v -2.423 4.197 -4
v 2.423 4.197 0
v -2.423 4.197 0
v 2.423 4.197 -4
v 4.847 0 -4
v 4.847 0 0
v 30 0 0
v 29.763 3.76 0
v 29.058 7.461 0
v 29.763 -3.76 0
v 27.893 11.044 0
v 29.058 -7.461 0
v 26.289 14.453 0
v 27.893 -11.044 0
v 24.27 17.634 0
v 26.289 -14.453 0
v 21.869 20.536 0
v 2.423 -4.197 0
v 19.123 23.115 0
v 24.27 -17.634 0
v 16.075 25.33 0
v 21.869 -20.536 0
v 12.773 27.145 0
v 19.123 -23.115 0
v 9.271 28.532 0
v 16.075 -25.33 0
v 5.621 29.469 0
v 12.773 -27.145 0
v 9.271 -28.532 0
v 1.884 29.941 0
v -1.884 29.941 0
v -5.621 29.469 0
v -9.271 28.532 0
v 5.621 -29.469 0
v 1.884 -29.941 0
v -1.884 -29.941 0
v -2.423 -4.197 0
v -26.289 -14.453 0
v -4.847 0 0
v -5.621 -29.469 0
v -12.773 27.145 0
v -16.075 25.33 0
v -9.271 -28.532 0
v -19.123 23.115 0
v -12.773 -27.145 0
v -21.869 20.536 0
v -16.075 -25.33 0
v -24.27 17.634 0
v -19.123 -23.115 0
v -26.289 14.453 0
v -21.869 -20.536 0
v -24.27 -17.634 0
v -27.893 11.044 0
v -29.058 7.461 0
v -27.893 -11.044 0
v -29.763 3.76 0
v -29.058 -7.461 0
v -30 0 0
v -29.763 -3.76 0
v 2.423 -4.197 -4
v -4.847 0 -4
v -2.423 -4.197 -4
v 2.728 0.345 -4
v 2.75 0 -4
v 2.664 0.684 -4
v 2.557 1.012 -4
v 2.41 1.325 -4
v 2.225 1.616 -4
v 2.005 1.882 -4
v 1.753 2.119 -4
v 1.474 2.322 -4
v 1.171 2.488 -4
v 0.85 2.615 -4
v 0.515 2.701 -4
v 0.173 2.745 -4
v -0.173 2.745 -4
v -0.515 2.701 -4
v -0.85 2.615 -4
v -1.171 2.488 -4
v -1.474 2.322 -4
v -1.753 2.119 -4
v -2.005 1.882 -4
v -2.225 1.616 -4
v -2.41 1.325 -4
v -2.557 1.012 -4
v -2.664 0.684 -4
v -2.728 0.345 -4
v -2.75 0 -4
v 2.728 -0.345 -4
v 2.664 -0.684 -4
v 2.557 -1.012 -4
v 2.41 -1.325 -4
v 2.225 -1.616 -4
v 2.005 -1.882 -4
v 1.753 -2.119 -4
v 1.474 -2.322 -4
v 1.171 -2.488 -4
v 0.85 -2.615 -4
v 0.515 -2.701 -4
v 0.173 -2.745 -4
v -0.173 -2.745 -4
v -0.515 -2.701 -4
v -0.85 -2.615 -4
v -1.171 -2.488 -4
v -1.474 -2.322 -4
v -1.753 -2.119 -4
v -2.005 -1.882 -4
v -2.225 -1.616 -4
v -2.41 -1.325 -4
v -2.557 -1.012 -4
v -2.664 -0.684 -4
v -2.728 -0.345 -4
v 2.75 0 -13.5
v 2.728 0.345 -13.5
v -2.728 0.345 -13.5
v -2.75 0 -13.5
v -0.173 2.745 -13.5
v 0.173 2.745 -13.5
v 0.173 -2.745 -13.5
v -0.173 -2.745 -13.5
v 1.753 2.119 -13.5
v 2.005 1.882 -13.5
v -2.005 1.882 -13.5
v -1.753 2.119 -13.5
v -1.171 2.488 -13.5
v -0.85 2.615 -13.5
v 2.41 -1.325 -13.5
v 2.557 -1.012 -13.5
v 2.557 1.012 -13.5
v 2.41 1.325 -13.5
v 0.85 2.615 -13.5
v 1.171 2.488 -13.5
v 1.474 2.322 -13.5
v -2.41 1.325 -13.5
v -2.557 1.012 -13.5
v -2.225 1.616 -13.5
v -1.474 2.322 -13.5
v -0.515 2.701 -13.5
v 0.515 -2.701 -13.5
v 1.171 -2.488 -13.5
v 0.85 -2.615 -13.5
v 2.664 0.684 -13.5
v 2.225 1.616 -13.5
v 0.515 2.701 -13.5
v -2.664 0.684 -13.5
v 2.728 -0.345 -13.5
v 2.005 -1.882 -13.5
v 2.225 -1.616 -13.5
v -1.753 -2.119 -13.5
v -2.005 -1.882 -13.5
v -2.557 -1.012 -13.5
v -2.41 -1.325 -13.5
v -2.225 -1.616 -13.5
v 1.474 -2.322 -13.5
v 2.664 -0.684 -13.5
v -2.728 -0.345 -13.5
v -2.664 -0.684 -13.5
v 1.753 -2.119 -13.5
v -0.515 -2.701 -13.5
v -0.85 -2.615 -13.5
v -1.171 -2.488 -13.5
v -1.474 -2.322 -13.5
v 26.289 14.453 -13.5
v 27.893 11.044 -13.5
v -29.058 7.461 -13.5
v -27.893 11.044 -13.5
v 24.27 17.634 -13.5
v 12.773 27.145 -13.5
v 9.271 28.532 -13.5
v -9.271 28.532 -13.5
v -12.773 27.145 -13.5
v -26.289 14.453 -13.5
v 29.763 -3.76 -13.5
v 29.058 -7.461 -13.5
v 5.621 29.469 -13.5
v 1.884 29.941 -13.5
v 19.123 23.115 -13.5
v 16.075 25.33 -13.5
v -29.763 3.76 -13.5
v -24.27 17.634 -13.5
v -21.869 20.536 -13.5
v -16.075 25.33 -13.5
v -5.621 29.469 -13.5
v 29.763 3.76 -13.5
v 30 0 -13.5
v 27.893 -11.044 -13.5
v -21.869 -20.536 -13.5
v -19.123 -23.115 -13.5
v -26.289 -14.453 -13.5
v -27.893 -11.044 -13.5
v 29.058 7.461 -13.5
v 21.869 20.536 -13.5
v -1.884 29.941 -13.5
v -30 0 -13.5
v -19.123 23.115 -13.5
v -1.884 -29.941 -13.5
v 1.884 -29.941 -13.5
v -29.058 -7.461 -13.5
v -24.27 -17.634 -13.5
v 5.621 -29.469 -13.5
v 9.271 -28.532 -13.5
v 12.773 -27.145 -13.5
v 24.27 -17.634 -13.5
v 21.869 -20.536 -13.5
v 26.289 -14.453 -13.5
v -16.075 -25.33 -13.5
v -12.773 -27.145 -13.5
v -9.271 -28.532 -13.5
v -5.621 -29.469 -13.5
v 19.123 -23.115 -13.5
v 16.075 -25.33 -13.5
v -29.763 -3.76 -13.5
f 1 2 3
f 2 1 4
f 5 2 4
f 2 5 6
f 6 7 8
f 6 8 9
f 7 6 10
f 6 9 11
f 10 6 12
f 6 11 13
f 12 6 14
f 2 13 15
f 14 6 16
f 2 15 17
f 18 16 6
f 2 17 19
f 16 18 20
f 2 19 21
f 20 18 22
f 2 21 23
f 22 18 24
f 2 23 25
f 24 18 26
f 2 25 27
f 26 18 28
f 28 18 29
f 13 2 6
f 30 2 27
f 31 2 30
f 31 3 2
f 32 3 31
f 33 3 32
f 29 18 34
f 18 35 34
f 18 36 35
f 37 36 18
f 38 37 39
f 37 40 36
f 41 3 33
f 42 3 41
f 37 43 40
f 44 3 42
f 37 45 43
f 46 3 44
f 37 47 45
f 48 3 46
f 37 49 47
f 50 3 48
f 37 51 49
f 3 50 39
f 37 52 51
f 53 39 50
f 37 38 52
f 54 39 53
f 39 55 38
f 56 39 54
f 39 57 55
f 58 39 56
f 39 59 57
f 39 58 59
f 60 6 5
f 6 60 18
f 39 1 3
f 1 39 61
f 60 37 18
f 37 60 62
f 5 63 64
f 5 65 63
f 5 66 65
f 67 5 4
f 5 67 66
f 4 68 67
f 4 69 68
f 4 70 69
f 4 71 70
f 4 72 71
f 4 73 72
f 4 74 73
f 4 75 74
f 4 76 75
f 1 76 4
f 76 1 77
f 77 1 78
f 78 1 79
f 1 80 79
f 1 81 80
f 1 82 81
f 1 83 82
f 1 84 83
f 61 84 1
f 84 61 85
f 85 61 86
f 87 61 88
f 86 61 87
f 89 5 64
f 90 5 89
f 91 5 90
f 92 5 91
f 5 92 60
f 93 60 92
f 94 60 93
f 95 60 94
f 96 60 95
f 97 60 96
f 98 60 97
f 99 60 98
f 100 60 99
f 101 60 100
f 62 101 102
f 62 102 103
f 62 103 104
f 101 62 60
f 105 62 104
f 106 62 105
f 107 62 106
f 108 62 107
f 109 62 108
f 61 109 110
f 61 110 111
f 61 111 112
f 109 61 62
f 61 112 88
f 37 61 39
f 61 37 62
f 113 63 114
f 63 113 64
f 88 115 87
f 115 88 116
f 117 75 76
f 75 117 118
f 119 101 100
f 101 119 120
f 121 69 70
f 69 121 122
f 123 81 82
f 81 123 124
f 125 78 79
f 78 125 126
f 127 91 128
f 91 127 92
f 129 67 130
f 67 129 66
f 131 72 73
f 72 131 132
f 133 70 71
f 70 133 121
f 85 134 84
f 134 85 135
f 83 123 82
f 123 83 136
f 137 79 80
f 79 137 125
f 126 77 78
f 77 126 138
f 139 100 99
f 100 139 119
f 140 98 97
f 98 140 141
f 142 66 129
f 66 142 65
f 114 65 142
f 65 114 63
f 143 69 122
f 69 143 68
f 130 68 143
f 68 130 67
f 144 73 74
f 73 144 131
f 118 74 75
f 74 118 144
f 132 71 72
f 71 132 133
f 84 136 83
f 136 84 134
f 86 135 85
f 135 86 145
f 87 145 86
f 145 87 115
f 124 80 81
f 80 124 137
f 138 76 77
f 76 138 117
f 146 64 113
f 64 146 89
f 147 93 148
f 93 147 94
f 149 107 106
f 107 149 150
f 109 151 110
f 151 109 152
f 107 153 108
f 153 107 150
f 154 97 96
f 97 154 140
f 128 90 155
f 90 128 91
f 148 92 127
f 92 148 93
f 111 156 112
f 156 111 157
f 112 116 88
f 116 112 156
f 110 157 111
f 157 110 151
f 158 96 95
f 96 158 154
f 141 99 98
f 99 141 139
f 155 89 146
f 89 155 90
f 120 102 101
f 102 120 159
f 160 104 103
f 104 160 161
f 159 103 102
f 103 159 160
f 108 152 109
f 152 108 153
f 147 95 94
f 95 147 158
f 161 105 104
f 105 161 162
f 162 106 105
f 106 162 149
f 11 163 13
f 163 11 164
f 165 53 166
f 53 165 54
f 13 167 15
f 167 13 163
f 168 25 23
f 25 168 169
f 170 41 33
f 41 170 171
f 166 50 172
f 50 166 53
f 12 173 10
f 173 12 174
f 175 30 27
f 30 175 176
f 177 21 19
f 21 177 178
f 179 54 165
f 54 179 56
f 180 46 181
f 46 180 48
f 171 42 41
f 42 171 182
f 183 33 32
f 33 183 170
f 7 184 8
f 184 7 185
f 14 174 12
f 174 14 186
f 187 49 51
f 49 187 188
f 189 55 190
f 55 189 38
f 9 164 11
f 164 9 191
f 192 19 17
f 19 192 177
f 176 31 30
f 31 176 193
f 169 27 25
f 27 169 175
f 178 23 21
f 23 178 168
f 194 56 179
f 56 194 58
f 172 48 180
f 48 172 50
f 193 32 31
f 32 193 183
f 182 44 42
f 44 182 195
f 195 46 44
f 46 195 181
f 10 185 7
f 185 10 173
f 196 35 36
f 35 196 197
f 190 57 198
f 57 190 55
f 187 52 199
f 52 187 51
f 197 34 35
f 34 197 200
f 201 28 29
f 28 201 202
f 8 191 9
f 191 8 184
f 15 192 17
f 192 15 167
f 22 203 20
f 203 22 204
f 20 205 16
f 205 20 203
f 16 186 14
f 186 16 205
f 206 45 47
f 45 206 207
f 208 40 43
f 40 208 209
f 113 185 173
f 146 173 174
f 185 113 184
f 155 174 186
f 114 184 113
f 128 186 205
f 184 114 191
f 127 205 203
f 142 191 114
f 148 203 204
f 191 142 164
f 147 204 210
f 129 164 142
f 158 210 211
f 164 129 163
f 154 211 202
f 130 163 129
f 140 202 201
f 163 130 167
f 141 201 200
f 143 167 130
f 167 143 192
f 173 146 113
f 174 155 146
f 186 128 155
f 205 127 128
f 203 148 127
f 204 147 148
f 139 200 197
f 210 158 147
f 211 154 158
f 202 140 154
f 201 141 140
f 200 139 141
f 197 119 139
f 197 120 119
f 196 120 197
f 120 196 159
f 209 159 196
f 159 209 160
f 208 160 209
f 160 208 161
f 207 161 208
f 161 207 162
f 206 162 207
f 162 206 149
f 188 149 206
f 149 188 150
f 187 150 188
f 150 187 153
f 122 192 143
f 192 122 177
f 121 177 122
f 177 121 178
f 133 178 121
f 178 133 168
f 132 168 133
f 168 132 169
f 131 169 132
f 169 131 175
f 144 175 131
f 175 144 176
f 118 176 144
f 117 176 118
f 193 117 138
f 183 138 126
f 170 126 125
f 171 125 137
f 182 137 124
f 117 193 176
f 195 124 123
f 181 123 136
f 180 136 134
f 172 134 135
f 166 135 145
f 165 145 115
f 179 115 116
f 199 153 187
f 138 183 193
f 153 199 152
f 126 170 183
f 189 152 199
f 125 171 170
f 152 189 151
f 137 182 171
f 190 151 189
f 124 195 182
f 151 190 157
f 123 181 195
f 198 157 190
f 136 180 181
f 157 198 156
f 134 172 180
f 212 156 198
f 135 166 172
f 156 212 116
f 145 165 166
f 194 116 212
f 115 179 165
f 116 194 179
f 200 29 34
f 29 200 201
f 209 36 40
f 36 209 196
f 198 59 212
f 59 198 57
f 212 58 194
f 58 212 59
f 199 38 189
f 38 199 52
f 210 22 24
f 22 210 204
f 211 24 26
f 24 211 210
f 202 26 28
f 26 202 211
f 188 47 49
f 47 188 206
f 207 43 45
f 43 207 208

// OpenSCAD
$fn = 50;

difference() {
	union() {
		translate(v = [0, 0, -13.5]) {
			cylinder(h = 13.5, r = 30.0);
		}
	}
	union() {
		translate(v = [0, 0, 0]) {
			rotate(a = [0, 0, 0]) {
				difference() {
					union() {
						translate(v = [0, 0, -4]) {
							linear_extrude(height = 4) {
								polygon(points = [[4.8468, 0.0], [2.4234000000000004, 4.197451927062417], [-2.423399999999999, 4.197451927062417], [-4.8468, 5.935618106107392e-16], [-2.423400000000002, -4.197451927062416], [2.423399999999997, -4.197451927062419]]);
							}
						}
					}
					union();
				}
			}
		}
		#translate(v = [0, 0, -100.0]) {
			cylinder(h = 200, r = 2.75);
		}
	}
}
